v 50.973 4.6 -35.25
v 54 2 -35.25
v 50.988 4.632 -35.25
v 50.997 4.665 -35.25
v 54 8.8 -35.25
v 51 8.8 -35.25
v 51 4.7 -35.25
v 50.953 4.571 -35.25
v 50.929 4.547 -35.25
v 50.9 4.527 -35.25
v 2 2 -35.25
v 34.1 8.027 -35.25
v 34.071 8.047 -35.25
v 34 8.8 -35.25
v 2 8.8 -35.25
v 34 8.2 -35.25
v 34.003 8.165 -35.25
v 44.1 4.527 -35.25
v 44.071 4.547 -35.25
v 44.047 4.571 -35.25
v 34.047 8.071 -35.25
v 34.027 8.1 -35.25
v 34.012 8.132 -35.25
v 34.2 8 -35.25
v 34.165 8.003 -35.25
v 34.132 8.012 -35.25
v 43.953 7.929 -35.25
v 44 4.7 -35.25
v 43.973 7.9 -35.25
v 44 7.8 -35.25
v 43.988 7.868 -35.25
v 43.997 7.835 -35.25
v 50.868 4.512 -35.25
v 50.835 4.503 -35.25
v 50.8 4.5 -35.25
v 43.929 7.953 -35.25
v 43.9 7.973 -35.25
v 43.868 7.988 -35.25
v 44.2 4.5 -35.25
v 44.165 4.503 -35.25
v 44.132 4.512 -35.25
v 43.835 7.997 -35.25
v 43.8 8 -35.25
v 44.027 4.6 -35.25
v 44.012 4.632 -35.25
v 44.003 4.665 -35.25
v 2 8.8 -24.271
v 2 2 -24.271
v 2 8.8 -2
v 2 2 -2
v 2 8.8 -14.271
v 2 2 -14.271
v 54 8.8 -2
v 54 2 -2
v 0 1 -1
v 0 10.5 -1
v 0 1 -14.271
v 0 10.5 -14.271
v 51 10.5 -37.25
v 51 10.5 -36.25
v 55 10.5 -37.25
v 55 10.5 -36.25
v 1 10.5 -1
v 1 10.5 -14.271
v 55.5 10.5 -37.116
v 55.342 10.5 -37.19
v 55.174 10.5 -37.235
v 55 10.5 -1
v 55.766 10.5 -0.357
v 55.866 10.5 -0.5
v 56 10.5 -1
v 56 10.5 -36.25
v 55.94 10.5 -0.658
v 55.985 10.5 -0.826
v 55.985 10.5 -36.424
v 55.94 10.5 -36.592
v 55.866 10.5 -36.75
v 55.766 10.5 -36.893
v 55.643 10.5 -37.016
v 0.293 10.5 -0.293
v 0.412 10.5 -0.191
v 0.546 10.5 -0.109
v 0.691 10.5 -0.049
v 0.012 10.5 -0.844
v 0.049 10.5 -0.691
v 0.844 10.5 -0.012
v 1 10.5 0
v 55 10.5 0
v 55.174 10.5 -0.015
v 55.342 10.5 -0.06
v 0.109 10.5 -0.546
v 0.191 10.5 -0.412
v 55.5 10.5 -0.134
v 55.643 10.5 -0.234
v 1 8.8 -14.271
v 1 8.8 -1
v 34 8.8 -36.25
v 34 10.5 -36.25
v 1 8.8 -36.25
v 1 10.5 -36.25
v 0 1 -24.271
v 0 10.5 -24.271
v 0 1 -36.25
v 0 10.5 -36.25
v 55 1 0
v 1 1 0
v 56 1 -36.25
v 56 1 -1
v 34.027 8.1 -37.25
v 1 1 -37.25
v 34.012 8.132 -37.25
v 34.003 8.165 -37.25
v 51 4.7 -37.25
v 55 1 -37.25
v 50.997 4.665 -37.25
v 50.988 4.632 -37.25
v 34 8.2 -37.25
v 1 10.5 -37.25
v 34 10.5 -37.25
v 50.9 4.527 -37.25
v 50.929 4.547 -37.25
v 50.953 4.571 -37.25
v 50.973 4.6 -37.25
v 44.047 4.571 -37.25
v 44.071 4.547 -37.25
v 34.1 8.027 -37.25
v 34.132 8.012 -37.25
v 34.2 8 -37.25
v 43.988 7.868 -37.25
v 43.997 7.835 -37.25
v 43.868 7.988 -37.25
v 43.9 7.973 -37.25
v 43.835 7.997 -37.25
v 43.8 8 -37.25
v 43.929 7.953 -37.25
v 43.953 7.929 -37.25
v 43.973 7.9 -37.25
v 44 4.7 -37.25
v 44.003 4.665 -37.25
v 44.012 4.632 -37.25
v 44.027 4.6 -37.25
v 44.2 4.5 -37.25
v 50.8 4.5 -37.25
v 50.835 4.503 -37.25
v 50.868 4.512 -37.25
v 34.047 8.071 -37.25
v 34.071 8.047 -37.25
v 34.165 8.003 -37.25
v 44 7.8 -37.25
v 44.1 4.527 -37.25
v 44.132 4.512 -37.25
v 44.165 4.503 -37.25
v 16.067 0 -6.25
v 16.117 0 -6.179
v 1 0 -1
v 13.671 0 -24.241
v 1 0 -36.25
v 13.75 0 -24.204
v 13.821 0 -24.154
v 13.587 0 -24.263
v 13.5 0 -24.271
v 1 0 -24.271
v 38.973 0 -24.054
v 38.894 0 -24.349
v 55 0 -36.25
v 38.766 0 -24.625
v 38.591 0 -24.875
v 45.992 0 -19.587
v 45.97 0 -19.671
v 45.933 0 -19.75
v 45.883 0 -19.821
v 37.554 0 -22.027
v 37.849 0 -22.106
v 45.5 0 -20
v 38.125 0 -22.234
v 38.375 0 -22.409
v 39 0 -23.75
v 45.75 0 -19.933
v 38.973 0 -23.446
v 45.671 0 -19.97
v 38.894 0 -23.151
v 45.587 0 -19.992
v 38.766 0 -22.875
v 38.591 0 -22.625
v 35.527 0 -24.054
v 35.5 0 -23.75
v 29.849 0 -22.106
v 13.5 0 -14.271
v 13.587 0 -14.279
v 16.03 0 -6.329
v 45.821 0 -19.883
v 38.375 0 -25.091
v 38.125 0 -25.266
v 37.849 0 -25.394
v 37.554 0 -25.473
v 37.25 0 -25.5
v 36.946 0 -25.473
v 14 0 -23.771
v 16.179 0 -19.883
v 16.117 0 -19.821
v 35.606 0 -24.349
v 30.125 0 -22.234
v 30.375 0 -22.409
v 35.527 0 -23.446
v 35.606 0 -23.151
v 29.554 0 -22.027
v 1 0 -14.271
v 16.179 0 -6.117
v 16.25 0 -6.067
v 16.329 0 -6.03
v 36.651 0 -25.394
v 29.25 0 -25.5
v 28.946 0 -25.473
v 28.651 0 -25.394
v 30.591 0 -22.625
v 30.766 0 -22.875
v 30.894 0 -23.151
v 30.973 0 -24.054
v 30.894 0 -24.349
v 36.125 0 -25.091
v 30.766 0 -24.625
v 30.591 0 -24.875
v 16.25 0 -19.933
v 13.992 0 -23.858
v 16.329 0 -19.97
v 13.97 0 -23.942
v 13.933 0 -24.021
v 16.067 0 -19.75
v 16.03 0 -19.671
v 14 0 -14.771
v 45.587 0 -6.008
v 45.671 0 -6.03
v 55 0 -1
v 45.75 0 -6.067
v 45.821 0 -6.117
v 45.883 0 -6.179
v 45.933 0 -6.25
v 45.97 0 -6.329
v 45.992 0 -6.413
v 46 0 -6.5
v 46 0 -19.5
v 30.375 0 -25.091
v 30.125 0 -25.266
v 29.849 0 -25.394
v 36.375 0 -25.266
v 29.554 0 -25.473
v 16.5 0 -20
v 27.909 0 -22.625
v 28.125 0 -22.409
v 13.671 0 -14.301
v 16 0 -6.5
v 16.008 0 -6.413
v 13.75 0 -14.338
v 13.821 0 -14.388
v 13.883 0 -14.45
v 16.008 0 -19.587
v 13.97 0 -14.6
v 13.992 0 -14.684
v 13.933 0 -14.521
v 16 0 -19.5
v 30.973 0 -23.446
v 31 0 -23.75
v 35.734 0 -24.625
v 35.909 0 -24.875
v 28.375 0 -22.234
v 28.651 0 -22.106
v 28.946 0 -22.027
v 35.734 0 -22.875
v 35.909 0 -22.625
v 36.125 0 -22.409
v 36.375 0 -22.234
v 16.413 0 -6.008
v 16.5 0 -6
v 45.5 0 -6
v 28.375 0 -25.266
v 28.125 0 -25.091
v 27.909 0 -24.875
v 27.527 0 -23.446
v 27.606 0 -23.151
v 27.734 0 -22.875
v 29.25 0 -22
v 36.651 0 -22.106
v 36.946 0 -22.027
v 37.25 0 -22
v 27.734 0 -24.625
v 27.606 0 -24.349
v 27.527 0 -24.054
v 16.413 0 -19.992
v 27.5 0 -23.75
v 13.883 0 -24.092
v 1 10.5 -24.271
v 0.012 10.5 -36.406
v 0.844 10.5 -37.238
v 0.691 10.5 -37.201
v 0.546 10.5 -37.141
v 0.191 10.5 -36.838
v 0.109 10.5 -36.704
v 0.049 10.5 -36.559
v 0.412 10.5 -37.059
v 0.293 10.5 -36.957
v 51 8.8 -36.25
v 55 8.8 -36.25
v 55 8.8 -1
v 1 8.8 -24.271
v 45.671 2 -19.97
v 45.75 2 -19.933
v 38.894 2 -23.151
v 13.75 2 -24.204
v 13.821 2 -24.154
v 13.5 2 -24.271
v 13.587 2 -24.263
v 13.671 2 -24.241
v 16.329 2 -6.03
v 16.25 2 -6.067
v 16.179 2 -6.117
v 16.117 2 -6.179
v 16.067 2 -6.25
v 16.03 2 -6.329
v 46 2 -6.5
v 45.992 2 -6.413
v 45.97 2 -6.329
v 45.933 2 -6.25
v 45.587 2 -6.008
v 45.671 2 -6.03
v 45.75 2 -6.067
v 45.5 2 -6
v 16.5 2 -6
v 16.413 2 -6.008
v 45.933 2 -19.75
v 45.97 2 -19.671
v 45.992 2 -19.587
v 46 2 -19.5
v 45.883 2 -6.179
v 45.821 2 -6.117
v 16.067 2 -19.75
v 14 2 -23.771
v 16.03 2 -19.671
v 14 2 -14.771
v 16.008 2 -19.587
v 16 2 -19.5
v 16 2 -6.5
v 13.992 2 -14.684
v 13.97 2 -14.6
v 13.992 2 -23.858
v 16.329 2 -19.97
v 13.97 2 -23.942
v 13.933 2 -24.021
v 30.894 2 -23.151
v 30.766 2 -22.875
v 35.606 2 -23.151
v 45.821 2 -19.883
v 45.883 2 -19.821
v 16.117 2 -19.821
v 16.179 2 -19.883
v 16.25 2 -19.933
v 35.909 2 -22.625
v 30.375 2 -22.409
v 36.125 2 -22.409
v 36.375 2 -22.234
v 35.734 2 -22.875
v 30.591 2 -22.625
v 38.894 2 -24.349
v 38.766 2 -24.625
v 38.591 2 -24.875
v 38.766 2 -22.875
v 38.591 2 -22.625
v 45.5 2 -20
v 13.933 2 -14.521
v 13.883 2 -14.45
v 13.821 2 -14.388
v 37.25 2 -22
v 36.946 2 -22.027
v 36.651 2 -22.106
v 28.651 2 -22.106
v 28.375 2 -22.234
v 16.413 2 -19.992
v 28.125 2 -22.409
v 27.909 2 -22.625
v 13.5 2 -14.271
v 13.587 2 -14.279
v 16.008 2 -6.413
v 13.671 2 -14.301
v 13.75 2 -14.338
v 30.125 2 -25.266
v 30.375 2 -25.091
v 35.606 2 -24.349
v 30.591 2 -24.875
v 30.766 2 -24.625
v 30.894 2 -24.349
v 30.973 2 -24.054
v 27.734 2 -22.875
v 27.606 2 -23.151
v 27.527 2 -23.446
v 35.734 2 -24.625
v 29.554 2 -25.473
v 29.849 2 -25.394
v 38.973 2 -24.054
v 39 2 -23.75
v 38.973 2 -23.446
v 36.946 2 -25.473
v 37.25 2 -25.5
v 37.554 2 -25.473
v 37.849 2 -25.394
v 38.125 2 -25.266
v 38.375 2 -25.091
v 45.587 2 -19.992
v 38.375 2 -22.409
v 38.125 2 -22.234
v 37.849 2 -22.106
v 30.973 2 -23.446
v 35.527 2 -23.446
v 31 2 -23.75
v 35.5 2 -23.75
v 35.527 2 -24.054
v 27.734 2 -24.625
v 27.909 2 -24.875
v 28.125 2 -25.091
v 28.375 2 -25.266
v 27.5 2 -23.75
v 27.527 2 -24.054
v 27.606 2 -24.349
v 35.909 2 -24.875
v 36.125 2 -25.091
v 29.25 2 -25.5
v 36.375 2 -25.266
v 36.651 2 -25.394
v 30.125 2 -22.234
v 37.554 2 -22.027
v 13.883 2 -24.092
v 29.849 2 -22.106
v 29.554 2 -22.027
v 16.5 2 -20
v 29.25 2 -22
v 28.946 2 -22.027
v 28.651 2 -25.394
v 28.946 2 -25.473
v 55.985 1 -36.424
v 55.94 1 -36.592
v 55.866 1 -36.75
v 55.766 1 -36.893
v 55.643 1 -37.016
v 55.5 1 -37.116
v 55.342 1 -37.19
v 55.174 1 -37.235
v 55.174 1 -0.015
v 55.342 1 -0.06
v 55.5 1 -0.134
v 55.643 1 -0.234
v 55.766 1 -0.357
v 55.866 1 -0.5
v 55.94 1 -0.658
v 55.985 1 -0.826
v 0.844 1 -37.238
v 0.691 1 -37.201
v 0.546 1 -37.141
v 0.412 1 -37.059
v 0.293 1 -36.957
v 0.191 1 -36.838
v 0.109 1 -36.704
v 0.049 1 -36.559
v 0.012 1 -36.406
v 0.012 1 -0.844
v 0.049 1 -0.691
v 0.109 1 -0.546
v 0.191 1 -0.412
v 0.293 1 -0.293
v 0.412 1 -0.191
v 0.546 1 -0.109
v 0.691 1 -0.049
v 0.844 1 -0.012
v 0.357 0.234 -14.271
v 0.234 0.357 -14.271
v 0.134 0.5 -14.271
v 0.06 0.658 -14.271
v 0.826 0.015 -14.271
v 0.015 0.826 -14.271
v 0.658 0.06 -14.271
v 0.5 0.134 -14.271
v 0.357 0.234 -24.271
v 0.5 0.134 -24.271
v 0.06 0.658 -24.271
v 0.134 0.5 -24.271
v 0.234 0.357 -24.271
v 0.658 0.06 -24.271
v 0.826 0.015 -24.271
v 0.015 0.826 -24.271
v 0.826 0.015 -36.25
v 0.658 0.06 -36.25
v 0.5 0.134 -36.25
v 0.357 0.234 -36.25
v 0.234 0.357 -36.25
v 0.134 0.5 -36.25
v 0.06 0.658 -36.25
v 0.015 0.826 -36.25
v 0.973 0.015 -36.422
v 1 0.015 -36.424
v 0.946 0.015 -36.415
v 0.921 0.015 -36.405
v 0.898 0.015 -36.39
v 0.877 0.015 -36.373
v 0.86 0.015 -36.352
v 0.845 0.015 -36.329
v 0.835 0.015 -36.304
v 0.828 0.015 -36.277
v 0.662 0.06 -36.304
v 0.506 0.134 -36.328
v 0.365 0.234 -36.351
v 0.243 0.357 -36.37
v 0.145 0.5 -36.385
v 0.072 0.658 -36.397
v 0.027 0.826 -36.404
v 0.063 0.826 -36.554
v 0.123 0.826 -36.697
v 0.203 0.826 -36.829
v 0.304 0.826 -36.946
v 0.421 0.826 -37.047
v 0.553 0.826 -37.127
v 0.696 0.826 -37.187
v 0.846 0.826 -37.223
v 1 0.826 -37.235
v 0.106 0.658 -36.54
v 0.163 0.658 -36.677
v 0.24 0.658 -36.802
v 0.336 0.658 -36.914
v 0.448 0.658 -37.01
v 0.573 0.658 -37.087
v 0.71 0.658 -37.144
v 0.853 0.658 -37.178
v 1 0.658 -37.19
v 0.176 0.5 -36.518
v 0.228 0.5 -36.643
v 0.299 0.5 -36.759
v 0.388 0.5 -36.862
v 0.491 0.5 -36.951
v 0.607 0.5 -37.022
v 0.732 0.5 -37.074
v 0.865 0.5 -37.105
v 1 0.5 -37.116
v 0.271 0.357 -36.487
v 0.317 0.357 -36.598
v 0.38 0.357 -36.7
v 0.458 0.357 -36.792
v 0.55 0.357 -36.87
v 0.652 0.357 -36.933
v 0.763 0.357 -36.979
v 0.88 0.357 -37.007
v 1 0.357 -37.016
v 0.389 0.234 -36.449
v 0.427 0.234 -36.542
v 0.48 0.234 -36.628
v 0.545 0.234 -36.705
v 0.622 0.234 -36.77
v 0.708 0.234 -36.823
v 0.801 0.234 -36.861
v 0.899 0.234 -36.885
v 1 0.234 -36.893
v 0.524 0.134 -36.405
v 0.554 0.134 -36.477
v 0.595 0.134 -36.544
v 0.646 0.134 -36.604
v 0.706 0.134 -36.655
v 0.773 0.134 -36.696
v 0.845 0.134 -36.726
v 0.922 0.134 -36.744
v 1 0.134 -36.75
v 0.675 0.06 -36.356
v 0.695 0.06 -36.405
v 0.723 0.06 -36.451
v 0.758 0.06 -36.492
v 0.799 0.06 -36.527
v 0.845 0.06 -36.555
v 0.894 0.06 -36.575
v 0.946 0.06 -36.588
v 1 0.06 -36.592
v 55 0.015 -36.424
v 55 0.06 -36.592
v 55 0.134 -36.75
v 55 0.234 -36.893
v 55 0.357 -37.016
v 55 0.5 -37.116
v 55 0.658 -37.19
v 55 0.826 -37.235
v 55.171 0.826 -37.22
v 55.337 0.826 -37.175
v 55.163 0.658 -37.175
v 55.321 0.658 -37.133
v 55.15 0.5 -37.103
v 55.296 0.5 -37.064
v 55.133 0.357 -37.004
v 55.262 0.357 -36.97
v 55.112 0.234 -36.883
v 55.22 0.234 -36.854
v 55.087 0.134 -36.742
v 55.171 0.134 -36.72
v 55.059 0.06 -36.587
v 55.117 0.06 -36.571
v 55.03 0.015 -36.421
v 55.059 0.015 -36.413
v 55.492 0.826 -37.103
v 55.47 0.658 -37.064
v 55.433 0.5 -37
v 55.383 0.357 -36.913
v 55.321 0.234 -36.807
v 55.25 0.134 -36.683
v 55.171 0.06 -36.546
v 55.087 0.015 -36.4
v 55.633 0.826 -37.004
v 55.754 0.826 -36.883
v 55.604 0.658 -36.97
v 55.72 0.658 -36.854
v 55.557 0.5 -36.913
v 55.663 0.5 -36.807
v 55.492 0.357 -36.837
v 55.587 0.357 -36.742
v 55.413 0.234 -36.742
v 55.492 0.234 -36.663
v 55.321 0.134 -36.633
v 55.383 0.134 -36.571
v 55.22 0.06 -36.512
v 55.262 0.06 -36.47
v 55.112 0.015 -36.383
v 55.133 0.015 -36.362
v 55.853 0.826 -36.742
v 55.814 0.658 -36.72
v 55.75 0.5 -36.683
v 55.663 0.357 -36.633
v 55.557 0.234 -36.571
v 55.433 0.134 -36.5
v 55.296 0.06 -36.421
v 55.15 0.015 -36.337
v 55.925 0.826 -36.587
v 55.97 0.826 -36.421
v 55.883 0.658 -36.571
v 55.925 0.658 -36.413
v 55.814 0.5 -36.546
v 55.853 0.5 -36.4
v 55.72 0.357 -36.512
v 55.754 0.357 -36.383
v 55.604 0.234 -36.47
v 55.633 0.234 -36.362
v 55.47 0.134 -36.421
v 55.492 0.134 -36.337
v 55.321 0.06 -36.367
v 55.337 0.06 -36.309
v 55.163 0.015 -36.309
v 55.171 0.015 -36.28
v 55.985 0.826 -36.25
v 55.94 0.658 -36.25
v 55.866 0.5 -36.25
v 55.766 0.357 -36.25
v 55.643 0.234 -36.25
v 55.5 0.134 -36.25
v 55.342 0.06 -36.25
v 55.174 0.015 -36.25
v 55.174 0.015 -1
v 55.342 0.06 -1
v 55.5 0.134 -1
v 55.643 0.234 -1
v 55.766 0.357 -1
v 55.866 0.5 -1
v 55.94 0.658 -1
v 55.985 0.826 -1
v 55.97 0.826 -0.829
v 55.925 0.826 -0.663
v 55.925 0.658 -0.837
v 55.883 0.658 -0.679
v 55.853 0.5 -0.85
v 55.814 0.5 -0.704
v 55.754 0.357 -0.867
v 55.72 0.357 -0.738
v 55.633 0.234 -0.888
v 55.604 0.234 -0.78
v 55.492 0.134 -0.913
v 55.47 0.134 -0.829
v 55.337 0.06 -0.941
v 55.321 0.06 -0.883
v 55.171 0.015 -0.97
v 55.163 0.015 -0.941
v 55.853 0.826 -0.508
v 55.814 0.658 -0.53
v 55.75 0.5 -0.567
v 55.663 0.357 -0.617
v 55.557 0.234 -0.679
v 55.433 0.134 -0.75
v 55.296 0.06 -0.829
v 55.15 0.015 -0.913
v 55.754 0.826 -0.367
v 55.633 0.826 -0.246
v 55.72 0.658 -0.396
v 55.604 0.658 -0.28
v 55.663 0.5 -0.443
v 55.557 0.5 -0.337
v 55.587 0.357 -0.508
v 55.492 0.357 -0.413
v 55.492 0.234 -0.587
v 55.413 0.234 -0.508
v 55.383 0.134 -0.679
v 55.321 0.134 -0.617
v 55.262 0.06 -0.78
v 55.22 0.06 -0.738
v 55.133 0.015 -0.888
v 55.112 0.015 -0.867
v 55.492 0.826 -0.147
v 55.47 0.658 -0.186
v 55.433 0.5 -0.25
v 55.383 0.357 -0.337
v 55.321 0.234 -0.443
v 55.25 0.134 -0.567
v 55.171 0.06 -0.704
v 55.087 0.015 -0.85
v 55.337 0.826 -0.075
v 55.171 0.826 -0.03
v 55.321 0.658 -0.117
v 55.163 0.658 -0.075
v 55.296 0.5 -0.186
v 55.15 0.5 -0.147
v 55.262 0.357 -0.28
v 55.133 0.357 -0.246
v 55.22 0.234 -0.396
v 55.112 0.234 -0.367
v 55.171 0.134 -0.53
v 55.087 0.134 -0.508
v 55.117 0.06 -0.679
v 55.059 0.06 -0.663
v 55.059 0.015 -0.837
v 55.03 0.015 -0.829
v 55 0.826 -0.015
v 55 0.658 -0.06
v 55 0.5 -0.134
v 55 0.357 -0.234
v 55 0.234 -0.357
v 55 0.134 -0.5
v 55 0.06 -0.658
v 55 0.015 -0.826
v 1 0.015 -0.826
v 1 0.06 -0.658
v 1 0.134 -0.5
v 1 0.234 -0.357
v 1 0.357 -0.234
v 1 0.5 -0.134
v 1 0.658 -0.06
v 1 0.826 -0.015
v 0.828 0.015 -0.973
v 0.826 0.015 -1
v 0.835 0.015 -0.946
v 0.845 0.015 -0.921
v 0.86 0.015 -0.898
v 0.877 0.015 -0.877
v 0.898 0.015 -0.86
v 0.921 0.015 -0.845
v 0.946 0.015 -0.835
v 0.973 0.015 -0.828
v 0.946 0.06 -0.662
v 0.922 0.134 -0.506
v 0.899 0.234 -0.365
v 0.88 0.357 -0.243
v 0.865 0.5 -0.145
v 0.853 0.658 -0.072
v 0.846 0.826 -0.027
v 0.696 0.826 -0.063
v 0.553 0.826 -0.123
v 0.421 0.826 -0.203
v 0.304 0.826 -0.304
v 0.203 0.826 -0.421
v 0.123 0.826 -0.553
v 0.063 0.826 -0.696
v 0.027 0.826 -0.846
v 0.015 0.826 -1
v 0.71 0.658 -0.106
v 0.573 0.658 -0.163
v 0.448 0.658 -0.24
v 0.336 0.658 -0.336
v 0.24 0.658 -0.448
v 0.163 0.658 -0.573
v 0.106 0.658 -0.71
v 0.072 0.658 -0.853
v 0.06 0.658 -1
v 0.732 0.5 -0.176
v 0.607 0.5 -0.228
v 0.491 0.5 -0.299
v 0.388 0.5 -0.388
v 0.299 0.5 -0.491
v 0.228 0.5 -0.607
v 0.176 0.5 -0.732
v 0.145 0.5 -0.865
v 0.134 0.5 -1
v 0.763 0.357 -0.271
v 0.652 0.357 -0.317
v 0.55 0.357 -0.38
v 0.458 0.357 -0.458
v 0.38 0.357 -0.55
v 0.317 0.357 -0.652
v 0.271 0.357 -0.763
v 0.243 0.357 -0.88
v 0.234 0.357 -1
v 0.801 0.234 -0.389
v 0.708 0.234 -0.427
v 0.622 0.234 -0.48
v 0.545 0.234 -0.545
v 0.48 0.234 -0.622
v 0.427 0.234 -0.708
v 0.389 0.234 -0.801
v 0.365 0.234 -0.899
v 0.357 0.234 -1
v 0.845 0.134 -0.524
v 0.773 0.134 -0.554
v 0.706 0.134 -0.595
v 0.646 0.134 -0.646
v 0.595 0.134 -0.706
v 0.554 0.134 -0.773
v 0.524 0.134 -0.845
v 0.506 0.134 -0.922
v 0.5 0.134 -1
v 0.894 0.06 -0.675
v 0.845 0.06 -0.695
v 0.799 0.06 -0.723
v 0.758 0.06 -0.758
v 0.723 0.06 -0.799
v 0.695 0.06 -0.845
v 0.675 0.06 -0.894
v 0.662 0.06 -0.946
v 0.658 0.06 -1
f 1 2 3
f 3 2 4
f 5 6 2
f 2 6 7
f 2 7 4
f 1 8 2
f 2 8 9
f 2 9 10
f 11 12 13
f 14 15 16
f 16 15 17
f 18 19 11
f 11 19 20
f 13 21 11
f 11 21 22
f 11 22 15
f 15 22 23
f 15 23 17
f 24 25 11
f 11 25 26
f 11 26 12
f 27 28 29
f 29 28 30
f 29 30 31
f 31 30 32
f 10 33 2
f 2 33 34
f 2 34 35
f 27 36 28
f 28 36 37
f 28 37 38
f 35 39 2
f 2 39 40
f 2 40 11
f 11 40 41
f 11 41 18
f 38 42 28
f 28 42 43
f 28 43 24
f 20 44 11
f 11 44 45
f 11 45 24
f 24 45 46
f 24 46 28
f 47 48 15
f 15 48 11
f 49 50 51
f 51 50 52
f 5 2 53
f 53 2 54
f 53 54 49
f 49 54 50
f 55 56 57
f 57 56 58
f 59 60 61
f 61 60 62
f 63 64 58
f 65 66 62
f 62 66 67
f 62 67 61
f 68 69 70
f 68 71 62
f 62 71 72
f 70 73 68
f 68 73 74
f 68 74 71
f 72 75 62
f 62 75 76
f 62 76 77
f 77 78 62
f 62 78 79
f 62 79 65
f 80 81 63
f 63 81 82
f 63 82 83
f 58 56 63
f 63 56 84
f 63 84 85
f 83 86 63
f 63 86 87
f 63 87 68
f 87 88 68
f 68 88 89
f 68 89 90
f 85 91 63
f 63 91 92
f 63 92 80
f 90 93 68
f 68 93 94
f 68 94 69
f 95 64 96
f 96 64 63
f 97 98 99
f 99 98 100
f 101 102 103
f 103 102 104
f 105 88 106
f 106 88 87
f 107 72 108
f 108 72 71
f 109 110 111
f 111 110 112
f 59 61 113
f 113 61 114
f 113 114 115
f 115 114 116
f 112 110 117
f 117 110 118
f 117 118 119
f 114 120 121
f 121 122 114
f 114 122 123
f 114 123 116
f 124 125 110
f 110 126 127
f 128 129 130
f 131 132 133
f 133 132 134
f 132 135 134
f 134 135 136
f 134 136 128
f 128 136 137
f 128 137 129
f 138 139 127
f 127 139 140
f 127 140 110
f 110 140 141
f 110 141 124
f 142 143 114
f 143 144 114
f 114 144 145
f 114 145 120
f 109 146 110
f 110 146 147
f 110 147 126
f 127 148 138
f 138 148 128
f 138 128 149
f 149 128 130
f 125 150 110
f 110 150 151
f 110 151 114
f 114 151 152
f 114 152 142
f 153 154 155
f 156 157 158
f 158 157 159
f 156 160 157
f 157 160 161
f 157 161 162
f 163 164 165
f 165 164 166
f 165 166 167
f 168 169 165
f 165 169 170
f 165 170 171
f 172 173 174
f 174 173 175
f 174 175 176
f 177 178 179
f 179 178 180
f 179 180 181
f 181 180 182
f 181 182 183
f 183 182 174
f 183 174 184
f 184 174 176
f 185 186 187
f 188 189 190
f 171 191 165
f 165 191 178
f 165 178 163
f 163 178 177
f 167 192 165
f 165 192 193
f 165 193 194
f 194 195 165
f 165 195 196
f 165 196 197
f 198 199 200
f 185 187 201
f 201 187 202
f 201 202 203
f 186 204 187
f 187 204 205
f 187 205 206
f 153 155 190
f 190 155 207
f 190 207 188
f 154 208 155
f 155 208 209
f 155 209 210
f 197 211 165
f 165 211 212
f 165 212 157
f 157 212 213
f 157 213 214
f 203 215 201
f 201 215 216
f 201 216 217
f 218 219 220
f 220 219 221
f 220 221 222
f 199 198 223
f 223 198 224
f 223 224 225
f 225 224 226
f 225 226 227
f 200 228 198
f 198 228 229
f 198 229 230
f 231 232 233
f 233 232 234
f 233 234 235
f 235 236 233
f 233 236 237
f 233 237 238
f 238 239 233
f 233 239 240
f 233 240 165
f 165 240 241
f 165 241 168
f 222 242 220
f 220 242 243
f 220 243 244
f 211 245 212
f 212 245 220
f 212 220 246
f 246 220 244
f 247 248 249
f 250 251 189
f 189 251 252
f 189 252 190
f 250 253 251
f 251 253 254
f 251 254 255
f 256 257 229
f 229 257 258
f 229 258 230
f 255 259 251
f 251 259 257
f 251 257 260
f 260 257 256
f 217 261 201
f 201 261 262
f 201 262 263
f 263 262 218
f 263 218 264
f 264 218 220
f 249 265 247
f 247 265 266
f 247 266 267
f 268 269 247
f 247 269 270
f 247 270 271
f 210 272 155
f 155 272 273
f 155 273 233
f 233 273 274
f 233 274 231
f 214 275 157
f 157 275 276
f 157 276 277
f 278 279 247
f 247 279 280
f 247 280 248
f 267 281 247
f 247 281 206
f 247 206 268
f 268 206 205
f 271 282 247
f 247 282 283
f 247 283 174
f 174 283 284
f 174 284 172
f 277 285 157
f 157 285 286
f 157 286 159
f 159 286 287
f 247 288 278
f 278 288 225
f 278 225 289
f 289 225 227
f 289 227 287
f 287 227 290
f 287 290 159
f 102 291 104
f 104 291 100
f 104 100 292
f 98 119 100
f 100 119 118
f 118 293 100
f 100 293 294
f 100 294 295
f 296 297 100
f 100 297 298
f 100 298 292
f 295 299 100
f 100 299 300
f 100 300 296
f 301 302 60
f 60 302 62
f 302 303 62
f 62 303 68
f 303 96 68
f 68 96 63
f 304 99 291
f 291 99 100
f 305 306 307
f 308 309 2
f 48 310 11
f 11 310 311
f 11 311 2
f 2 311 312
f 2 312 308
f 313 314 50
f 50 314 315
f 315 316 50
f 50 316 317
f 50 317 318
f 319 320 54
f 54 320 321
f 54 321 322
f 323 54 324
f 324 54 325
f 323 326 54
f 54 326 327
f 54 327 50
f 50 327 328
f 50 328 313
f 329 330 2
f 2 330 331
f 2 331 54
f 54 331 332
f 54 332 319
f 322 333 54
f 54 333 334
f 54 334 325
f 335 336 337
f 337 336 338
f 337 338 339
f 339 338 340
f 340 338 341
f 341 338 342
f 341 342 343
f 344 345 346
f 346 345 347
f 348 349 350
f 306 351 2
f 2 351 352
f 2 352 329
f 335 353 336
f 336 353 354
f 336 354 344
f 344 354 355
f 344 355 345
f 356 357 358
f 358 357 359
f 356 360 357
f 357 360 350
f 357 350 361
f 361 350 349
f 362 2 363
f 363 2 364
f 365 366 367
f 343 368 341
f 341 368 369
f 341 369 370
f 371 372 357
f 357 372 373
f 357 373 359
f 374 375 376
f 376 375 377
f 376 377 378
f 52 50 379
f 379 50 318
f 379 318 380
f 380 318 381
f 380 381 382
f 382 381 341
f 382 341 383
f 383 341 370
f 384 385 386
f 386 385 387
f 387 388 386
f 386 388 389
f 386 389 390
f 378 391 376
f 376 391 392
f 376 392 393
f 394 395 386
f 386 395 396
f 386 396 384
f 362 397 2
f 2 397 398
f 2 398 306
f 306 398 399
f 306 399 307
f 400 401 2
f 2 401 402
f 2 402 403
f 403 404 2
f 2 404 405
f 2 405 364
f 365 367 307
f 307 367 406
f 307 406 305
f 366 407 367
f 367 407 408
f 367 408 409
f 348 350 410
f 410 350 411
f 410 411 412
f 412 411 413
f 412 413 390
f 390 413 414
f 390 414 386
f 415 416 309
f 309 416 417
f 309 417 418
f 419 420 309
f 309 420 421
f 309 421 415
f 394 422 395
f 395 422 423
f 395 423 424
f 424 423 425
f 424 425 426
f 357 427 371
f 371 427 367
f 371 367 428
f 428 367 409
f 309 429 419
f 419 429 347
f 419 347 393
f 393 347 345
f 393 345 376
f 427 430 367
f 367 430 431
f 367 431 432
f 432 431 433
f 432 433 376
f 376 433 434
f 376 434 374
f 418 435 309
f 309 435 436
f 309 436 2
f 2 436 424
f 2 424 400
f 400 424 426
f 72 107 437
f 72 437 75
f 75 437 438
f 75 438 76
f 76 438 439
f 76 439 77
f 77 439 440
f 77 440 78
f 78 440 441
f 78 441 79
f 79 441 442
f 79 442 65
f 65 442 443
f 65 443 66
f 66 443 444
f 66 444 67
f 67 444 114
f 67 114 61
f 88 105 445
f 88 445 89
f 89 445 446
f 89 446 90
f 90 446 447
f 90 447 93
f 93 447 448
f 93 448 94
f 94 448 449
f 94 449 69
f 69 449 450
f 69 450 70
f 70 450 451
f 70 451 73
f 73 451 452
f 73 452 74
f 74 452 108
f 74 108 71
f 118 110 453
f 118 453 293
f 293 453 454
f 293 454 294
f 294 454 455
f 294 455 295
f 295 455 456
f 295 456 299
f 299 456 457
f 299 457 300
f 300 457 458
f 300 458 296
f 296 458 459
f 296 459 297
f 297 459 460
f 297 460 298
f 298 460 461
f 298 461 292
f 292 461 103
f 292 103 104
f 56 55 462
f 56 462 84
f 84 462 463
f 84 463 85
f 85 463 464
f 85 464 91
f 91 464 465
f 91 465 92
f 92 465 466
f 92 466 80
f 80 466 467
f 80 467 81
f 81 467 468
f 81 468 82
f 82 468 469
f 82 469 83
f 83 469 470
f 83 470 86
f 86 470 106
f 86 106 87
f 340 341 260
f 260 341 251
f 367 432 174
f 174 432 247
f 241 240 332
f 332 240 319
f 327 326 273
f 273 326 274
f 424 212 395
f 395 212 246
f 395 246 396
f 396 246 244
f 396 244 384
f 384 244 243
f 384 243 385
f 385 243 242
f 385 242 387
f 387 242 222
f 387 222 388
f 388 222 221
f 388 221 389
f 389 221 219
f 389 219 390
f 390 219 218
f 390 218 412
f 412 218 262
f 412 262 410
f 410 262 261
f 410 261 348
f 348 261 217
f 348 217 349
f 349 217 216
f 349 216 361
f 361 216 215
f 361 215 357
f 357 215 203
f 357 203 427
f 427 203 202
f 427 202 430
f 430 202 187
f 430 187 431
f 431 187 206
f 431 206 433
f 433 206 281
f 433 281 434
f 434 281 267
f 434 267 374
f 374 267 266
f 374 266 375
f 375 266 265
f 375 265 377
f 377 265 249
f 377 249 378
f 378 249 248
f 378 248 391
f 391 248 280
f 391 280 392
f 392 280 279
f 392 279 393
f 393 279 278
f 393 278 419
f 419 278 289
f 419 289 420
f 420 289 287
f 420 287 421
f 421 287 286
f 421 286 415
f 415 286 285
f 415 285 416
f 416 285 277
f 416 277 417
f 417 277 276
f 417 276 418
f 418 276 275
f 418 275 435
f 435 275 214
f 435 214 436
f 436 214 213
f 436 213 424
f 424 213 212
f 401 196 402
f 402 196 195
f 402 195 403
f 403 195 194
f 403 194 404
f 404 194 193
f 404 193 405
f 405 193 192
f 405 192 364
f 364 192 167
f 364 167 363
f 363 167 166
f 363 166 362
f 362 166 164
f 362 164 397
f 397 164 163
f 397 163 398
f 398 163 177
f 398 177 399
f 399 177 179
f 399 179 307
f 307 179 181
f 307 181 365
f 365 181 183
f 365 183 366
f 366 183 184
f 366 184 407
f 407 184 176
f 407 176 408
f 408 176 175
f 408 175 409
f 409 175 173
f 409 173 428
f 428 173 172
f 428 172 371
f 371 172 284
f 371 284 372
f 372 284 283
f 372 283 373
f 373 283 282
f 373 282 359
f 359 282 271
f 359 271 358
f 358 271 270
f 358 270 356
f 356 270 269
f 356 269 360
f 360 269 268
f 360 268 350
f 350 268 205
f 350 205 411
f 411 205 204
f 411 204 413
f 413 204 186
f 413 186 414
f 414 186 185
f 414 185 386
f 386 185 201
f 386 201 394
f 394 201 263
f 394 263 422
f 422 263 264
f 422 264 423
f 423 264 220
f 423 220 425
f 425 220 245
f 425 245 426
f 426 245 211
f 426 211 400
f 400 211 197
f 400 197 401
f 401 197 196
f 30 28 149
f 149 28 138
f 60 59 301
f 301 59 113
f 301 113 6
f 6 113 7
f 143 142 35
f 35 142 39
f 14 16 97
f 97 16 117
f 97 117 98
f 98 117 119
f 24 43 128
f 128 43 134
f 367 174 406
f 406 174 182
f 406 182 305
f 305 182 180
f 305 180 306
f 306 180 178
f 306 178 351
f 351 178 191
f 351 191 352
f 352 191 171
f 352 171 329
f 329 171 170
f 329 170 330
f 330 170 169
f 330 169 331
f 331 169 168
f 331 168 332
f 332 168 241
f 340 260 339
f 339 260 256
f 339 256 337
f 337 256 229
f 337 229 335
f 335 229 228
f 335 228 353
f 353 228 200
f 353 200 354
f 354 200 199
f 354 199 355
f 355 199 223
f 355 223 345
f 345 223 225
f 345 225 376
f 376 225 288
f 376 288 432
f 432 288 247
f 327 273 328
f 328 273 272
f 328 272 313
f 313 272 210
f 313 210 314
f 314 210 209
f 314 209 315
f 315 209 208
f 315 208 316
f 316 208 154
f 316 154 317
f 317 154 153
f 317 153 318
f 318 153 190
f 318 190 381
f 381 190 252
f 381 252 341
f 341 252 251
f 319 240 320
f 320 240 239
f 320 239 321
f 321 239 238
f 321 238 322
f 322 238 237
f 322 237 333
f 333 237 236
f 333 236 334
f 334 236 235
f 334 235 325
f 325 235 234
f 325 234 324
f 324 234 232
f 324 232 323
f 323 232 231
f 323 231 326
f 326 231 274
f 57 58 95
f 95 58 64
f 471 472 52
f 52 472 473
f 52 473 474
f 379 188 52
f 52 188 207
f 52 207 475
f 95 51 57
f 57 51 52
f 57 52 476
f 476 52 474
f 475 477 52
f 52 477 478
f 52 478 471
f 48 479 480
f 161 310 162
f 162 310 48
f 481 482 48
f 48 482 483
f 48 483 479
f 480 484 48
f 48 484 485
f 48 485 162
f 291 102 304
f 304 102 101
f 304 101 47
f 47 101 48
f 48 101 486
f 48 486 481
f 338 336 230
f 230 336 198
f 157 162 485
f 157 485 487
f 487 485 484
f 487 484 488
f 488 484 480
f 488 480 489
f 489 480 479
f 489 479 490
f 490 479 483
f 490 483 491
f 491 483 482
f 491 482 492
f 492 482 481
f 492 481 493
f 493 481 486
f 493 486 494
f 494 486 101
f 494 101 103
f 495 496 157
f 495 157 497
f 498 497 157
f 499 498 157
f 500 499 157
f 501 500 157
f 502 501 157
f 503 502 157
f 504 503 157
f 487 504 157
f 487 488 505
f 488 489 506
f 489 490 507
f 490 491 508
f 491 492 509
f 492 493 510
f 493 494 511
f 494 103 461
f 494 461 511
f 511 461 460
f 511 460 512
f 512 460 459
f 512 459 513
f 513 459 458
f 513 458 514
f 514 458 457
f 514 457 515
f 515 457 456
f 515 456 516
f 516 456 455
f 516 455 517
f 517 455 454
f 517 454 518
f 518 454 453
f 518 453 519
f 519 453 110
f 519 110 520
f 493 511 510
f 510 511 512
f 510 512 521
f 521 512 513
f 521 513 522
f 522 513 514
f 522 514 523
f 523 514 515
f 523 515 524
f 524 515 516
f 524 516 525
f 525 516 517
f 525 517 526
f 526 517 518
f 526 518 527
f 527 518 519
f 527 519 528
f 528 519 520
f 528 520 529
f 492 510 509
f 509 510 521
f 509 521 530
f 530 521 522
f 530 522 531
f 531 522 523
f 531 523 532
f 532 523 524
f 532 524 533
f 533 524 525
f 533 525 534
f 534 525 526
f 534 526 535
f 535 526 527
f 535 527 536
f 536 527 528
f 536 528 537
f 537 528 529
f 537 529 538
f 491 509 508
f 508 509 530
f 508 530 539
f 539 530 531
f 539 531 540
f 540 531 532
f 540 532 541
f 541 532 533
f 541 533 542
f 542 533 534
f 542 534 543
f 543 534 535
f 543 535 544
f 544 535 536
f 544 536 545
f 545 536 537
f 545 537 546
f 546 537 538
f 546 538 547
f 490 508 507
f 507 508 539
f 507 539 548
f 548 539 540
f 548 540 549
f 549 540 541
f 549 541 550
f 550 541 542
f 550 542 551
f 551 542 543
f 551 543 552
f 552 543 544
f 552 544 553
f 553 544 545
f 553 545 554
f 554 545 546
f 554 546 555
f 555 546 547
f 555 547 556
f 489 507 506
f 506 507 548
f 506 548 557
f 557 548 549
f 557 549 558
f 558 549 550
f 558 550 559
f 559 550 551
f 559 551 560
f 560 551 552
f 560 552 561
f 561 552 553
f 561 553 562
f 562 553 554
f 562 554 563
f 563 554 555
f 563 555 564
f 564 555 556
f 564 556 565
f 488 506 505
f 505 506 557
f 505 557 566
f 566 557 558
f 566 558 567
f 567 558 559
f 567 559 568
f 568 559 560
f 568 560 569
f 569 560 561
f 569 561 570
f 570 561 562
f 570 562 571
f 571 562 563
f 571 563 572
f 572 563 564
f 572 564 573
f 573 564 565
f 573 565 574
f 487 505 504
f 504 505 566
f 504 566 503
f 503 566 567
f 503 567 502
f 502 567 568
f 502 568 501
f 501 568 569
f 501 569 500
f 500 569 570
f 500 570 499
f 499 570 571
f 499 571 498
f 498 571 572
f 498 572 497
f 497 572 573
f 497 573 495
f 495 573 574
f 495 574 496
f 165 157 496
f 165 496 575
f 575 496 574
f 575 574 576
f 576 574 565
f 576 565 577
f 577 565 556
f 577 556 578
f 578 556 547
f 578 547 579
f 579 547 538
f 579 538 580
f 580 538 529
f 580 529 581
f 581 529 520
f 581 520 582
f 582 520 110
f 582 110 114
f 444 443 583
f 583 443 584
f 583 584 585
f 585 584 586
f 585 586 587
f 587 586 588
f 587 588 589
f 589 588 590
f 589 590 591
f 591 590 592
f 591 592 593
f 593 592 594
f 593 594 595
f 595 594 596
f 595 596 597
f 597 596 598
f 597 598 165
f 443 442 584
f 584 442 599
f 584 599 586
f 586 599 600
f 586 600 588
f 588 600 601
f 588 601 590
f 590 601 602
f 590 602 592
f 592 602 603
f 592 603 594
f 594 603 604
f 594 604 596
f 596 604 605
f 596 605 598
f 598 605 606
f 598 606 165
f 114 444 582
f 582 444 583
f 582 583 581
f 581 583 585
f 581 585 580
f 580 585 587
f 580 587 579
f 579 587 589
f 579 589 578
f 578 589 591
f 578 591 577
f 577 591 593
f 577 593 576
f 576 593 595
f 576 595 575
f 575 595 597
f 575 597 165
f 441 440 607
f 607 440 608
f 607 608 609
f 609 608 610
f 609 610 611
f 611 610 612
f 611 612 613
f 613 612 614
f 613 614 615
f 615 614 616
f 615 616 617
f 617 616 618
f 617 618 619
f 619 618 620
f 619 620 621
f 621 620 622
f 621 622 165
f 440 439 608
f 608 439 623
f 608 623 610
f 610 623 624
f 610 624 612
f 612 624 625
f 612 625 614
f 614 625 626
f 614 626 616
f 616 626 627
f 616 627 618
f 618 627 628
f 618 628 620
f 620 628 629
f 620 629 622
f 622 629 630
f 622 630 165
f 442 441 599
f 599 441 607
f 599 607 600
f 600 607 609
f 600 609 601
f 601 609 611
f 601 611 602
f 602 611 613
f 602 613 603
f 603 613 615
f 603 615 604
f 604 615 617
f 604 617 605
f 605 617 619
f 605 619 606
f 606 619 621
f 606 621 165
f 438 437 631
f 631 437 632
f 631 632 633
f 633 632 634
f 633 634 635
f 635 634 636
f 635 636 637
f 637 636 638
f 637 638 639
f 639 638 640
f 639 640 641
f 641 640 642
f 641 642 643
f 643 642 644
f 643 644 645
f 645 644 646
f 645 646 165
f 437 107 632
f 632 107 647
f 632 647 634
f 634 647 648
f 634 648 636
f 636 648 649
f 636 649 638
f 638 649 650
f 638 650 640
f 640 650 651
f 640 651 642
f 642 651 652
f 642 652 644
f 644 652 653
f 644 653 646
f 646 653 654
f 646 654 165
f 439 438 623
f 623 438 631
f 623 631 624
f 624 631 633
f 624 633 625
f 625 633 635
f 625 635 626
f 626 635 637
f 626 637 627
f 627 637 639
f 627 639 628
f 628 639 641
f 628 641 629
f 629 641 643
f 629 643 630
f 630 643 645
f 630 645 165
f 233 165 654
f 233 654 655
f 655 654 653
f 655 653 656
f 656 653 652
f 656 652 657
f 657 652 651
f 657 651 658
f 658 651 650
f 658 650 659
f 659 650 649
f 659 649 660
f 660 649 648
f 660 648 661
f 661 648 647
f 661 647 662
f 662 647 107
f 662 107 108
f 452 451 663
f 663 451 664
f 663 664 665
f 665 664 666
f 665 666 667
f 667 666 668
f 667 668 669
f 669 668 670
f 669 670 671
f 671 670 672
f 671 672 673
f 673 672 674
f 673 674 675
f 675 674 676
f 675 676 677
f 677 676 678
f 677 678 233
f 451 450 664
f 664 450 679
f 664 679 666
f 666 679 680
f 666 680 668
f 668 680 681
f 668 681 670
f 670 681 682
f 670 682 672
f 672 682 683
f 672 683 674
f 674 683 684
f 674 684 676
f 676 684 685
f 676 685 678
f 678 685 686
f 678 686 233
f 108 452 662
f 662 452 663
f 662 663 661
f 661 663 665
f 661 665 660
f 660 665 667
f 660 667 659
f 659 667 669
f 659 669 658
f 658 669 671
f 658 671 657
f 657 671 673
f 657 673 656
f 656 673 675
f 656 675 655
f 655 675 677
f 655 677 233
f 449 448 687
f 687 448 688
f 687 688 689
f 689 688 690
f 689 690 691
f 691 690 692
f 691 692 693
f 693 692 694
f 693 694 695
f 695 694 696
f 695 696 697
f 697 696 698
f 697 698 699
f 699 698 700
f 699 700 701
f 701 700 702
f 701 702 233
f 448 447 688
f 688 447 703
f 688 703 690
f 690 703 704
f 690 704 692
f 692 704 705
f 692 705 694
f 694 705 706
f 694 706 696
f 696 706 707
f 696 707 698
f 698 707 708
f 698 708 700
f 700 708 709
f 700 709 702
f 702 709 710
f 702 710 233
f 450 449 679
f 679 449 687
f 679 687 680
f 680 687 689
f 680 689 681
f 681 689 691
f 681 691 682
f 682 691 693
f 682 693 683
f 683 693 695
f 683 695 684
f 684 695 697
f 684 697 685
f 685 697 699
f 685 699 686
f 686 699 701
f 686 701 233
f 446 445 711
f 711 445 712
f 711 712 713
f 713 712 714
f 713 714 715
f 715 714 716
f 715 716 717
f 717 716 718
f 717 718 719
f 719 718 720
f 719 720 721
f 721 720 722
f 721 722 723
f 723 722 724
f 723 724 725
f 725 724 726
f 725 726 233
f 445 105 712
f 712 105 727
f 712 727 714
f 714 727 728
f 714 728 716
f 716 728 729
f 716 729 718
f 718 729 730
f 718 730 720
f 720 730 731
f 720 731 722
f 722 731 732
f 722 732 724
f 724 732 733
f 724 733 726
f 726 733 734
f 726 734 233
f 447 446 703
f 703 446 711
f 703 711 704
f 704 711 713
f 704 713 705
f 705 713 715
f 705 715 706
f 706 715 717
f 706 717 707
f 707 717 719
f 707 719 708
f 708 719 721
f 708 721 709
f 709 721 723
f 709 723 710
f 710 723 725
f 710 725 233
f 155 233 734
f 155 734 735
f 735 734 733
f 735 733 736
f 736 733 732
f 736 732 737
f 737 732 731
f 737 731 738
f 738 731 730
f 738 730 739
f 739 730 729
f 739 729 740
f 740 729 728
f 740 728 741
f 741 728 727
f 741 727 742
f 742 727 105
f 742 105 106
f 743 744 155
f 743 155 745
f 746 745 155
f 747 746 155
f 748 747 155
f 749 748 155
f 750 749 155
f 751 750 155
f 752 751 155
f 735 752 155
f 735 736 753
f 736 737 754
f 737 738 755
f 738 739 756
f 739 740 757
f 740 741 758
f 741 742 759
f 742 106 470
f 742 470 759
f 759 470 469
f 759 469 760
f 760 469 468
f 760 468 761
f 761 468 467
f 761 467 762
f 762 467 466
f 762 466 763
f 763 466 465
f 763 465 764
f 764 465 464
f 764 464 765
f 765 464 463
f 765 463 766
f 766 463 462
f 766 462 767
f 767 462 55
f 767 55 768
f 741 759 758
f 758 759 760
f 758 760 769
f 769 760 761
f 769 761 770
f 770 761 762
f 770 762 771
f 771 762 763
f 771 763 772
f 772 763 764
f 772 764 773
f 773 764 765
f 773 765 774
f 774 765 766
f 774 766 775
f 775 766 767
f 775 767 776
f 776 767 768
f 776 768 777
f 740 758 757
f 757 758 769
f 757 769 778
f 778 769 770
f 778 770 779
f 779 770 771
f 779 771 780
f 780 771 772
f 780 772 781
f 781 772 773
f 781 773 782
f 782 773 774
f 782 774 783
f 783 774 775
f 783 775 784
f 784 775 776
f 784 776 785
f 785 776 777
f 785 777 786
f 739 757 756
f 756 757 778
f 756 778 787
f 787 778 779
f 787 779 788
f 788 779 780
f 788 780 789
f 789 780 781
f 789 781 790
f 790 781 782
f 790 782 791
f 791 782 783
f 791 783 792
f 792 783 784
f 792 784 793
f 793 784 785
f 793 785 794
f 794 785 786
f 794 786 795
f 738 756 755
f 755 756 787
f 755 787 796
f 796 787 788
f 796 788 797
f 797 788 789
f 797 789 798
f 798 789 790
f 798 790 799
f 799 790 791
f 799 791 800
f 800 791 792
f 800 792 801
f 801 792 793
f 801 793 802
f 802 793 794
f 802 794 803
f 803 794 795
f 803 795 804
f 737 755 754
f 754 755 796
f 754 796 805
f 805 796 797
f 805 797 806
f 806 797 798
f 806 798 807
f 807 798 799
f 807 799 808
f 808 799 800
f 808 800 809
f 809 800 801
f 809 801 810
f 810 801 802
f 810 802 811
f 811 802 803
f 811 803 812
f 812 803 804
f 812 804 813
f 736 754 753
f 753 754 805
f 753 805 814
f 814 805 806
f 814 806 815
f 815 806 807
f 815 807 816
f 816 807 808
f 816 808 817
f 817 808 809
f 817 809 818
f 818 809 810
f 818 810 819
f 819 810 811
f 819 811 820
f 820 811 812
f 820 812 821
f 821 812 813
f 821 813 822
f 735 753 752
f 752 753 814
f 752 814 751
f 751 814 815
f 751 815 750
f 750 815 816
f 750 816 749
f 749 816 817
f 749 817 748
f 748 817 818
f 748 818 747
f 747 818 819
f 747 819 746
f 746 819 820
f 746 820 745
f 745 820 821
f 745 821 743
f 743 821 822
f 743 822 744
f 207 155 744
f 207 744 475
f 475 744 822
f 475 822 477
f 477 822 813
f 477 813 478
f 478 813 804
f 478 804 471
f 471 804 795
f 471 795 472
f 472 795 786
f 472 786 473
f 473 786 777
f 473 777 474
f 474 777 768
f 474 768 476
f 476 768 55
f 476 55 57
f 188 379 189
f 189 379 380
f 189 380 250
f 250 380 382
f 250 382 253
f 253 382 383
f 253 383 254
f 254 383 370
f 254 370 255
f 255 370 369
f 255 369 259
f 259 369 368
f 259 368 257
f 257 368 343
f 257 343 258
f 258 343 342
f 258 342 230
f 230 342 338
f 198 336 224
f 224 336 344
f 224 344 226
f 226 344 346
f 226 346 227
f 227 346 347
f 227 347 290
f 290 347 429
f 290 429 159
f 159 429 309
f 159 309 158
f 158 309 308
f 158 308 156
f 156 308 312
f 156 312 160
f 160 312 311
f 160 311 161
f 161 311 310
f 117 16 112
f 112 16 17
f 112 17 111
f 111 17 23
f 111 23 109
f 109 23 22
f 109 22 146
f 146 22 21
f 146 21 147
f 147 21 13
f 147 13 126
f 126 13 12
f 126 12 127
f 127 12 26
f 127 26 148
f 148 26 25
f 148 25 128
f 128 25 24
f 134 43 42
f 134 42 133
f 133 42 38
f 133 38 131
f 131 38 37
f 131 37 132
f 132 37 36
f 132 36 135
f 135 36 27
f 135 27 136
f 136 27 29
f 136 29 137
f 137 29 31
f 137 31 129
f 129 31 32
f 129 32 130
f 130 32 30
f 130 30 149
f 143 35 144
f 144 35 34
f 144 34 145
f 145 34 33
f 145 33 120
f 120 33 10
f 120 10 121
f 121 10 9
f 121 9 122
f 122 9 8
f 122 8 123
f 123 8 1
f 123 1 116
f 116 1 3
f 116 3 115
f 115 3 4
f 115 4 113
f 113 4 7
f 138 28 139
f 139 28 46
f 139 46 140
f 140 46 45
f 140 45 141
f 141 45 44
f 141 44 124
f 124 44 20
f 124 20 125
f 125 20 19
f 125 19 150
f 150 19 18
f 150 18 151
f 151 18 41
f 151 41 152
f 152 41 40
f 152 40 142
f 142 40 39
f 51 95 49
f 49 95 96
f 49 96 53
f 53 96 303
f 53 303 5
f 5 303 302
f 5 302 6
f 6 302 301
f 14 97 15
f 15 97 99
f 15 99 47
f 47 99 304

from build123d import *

# Parameters (mm, degrees)
SKETCH1_W           = 56
SKETCH1_H           = 37.25
BOSS_EXTRUDE1_DEPTH = 2
SKETCH2_W           = 56
SKETCH2_H           = 37.25
SKETCH2_W_2         = 52
SKETCH2_H_2         = 33.25
BOSS_EXTRUDE2_DEPTH = 8.5
SKETCH5_W           = 54
SKETCH5_H           = 35.25
SKETCH5_W_2         = 52
SKETCH5_H_2         = 33.25
CUT_EXTRUDE1_DEPTH  = 1
FILLET1_R           = 1
SKETCH7_W           = 30
SKETCH7_H           = 14
CUT_EXTRUDE3_DEPTH  = 10
SKETCH8_R           = 1.75
CUT_EXTRUDE4_DEPTH  = 10
SKETCH9_W           = 7
SKETCH9_H           = 6
CUT_EXTRUDE5_DEPTH  = 3
SKETCH10_W          = 10
SKETCH10_H          = 2.5
CUT_EXTRUDE6_DEPTH  = 3
FILLET2_R           = 0.5
SKETCH11_W          = 14
SKETCH11_H          = 10
CUT_EXTRUDE7_DEPTH  = 11.5
FILLET3_R           = 1
FILLET4_R           = 0.5
FILLET5_R           = 0.2
CUT_EXTRUDE8_DEPTH  = 0.7


with BuildPart() as part:
    # Sketch1 → Boss-Extrude1 (new body)
    with BuildSketch(Plane(origin=(0, 0, 0), x_dir=(1, 0, 0), z_dir=(0, 1, 0))):
        with Locations((28, 18.625)):
            Rectangle(SKETCH1_W, SKETCH1_H)
    extrude(amount=BOSS_EXTRUDE1_DEPTH)

    # Sketch2 → Boss-Extrude2 (add)
    with BuildSketch(Plane(origin=(0, 2, 0), x_dir=(1, 0, 0), z_dir=(0, 1, 0))):
        with Locations((28, 18.625)):
            Rectangle(SKETCH2_W, SKETCH2_H)
        with Locations((28, 18.625)):
            Rectangle(SKETCH2_W_2, SKETCH2_H_2, mode=Mode.SUBTRACT)
    extrude(amount=BOSS_EXTRUDE2_DEPTH)

    # Sketch5 → Cut-Extrude1 (cut)
    with BuildSketch(Plane(origin=(0, 10.5, 0), x_dir=(1, 0, 0), z_dir=(0, 1, 0))):
        with Locations((28, 18.625)):
            Rectangle(SKETCH5_W, SKETCH5_H)
        with Locations((28, 18.625)):
            Rectangle(SKETCH5_W_2, SKETCH5_H_2, mode=Mode.SUBTRACT)
        with Locations((28, 18.625)):
            Rectangle(SKETCH5_W_2, SKETCH5_H_2)
    extrude(amount=-CUT_EXTRUDE1_DEPTH, mode=Mode.SUBTRACT)

    # Fillet1
    fillet1_edges = [part.edges().sort_by_distance(p)[0] for p in [
        (0, 5.25, -37.25),
        (56, 5.25, -37.25),
        (56, 5.25, 0),
        (0, 5.25, 0),
    ]]
    fillet(fillet1_edges, radius=FILLET1_R)

    # Sketch7 → Cut-Extrude3 (cut)
    with BuildSketch(Plane(origin=(0, 2, 0), x_dir=(1, 0, 0), z_dir=(0, 1, 0))):
        with Locations((31, 13)):
            Rectangle(SKETCH7_W, SKETCH7_H)
    extrude(amount=-CUT_EXTRUDE3_DEPTH, mode=Mode.SUBTRACT)

    # Sketch8 → Cut-Extrude4 (cut)
    with BuildSketch(Plane.XZ):
        with Locations((29.24999924, -23.74999914)):
            Circle(SKETCH8_R)
        with Locations((37.25000102, -23.74999914)):
            Circle(SKETCH8_R)
    extrude(amount=-CUT_EXTRUDE4_DEPTH, mode=Mode.SUBTRACT)

    # Sketch9 → Cut-Extrude5 (cut)
    with BuildSketch(Plane(origin=(0, 0, -37.25), x_dir=(-1, 0, 0), z_dir=(0, 0, -1))):
        with Locations((-47.5, 7.5)):
            Rectangle(SKETCH9_W, SKETCH9_H)
    extrude(amount=-CUT_EXTRUDE5_DEPTH, mode=Mode.SUBTRACT)

    # Sketch10 → Cut-Extrude6 (cut)
    with BuildSketch(Plane(origin=(0, 0, -37.25), x_dir=(-1, 0, 0), z_dir=(0, 0, -1))):
        with Locations((-39, 9.25)):
            Rectangle(SKETCH10_W, SKETCH10_H)
    extrude(amount=-CUT_EXTRUDE6_DEPTH, mode=Mode.SUBTRACT)

    # Fillet2
    fillet2_edges = [part.edges().sort_by_distance(p)[0] for p in [
        (16, 1, -6),
        (16, 1, -20),
        (46, 1, -20),
        (46, 1, -6),
    ]]
    fillet(fillet2_edges, radius=FILLET2_R)

    # Sketch11 → Cut-Extrude7 (cut, through all)
    with BuildSketch(Plane.XZ):
        with Locations((7, -19.2710001)):
            Rectangle(SKETCH11_W, SKETCH11_H)
    extrude(amount=-CUT_EXTRUDE7_DEPTH, mode=Mode.SUBTRACT)

    # Fillet3
    fillet3_edges = [part.edges().sort_by_distance(p)[0] for p in [
        (0, 0, -30.26050005),
        (0.292893219, 0, -0.292893219),
        (28, 0, 0),
        (55.707106781, 0, -0.292893219),
        (56, 0, -18.625),
        (55.707106781, 0, -36.957106781),
        (0.292893219, 0, -36.957106781),
        (28, 0, -37.25),
    ]]
    fillet(fillet3_edges, radius=FILLET3_R)

    # Fillet4
    fillet4_edges = [part.edges().sort_by_distance(p)[0] for p in [
        (14, 1, -24.2710001),
        (14, 1, -14.2710001),
    ]]
    fillet(fillet4_edges, radius=FILLET4_R)

    # Fillet5
    fillet5_edges = [part.edges().sort_by_distance(p)[0] for p in [
        (51, 4.5, -36.25),
        (44, 4.5, -36.25),
        (44, 8, -36.25),
        (34, 8, -36.25),
    ]]
    fillet(fillet5_edges, radius=FILLET5_R)

    # Sketch12 → Cut-Extrude8 (cut)
    with BuildSketch(Plane(origin=(0, 9.5, 0), x_dir=(1, 0, 0), z_dir=(0, 1, 0))):
        Polygon((2, 14.2710001), (1, 14.2710001), (1, 1), (55, 1), (55, 36.25), (51, 36.25), (51, 35.25), (54, 35.25), (54, 2), (2, 2), align=None)
        Polygon((1, 24.2710001), (2, 24.2710001), (2, 35.25), (34, 35.25), (34, 36.25), (1, 36.25), align=None)
    extrude(amount=-CUT_EXTRUDE8_DEPTH, mode=Mode.SUBTRACT)


solid = part.part
